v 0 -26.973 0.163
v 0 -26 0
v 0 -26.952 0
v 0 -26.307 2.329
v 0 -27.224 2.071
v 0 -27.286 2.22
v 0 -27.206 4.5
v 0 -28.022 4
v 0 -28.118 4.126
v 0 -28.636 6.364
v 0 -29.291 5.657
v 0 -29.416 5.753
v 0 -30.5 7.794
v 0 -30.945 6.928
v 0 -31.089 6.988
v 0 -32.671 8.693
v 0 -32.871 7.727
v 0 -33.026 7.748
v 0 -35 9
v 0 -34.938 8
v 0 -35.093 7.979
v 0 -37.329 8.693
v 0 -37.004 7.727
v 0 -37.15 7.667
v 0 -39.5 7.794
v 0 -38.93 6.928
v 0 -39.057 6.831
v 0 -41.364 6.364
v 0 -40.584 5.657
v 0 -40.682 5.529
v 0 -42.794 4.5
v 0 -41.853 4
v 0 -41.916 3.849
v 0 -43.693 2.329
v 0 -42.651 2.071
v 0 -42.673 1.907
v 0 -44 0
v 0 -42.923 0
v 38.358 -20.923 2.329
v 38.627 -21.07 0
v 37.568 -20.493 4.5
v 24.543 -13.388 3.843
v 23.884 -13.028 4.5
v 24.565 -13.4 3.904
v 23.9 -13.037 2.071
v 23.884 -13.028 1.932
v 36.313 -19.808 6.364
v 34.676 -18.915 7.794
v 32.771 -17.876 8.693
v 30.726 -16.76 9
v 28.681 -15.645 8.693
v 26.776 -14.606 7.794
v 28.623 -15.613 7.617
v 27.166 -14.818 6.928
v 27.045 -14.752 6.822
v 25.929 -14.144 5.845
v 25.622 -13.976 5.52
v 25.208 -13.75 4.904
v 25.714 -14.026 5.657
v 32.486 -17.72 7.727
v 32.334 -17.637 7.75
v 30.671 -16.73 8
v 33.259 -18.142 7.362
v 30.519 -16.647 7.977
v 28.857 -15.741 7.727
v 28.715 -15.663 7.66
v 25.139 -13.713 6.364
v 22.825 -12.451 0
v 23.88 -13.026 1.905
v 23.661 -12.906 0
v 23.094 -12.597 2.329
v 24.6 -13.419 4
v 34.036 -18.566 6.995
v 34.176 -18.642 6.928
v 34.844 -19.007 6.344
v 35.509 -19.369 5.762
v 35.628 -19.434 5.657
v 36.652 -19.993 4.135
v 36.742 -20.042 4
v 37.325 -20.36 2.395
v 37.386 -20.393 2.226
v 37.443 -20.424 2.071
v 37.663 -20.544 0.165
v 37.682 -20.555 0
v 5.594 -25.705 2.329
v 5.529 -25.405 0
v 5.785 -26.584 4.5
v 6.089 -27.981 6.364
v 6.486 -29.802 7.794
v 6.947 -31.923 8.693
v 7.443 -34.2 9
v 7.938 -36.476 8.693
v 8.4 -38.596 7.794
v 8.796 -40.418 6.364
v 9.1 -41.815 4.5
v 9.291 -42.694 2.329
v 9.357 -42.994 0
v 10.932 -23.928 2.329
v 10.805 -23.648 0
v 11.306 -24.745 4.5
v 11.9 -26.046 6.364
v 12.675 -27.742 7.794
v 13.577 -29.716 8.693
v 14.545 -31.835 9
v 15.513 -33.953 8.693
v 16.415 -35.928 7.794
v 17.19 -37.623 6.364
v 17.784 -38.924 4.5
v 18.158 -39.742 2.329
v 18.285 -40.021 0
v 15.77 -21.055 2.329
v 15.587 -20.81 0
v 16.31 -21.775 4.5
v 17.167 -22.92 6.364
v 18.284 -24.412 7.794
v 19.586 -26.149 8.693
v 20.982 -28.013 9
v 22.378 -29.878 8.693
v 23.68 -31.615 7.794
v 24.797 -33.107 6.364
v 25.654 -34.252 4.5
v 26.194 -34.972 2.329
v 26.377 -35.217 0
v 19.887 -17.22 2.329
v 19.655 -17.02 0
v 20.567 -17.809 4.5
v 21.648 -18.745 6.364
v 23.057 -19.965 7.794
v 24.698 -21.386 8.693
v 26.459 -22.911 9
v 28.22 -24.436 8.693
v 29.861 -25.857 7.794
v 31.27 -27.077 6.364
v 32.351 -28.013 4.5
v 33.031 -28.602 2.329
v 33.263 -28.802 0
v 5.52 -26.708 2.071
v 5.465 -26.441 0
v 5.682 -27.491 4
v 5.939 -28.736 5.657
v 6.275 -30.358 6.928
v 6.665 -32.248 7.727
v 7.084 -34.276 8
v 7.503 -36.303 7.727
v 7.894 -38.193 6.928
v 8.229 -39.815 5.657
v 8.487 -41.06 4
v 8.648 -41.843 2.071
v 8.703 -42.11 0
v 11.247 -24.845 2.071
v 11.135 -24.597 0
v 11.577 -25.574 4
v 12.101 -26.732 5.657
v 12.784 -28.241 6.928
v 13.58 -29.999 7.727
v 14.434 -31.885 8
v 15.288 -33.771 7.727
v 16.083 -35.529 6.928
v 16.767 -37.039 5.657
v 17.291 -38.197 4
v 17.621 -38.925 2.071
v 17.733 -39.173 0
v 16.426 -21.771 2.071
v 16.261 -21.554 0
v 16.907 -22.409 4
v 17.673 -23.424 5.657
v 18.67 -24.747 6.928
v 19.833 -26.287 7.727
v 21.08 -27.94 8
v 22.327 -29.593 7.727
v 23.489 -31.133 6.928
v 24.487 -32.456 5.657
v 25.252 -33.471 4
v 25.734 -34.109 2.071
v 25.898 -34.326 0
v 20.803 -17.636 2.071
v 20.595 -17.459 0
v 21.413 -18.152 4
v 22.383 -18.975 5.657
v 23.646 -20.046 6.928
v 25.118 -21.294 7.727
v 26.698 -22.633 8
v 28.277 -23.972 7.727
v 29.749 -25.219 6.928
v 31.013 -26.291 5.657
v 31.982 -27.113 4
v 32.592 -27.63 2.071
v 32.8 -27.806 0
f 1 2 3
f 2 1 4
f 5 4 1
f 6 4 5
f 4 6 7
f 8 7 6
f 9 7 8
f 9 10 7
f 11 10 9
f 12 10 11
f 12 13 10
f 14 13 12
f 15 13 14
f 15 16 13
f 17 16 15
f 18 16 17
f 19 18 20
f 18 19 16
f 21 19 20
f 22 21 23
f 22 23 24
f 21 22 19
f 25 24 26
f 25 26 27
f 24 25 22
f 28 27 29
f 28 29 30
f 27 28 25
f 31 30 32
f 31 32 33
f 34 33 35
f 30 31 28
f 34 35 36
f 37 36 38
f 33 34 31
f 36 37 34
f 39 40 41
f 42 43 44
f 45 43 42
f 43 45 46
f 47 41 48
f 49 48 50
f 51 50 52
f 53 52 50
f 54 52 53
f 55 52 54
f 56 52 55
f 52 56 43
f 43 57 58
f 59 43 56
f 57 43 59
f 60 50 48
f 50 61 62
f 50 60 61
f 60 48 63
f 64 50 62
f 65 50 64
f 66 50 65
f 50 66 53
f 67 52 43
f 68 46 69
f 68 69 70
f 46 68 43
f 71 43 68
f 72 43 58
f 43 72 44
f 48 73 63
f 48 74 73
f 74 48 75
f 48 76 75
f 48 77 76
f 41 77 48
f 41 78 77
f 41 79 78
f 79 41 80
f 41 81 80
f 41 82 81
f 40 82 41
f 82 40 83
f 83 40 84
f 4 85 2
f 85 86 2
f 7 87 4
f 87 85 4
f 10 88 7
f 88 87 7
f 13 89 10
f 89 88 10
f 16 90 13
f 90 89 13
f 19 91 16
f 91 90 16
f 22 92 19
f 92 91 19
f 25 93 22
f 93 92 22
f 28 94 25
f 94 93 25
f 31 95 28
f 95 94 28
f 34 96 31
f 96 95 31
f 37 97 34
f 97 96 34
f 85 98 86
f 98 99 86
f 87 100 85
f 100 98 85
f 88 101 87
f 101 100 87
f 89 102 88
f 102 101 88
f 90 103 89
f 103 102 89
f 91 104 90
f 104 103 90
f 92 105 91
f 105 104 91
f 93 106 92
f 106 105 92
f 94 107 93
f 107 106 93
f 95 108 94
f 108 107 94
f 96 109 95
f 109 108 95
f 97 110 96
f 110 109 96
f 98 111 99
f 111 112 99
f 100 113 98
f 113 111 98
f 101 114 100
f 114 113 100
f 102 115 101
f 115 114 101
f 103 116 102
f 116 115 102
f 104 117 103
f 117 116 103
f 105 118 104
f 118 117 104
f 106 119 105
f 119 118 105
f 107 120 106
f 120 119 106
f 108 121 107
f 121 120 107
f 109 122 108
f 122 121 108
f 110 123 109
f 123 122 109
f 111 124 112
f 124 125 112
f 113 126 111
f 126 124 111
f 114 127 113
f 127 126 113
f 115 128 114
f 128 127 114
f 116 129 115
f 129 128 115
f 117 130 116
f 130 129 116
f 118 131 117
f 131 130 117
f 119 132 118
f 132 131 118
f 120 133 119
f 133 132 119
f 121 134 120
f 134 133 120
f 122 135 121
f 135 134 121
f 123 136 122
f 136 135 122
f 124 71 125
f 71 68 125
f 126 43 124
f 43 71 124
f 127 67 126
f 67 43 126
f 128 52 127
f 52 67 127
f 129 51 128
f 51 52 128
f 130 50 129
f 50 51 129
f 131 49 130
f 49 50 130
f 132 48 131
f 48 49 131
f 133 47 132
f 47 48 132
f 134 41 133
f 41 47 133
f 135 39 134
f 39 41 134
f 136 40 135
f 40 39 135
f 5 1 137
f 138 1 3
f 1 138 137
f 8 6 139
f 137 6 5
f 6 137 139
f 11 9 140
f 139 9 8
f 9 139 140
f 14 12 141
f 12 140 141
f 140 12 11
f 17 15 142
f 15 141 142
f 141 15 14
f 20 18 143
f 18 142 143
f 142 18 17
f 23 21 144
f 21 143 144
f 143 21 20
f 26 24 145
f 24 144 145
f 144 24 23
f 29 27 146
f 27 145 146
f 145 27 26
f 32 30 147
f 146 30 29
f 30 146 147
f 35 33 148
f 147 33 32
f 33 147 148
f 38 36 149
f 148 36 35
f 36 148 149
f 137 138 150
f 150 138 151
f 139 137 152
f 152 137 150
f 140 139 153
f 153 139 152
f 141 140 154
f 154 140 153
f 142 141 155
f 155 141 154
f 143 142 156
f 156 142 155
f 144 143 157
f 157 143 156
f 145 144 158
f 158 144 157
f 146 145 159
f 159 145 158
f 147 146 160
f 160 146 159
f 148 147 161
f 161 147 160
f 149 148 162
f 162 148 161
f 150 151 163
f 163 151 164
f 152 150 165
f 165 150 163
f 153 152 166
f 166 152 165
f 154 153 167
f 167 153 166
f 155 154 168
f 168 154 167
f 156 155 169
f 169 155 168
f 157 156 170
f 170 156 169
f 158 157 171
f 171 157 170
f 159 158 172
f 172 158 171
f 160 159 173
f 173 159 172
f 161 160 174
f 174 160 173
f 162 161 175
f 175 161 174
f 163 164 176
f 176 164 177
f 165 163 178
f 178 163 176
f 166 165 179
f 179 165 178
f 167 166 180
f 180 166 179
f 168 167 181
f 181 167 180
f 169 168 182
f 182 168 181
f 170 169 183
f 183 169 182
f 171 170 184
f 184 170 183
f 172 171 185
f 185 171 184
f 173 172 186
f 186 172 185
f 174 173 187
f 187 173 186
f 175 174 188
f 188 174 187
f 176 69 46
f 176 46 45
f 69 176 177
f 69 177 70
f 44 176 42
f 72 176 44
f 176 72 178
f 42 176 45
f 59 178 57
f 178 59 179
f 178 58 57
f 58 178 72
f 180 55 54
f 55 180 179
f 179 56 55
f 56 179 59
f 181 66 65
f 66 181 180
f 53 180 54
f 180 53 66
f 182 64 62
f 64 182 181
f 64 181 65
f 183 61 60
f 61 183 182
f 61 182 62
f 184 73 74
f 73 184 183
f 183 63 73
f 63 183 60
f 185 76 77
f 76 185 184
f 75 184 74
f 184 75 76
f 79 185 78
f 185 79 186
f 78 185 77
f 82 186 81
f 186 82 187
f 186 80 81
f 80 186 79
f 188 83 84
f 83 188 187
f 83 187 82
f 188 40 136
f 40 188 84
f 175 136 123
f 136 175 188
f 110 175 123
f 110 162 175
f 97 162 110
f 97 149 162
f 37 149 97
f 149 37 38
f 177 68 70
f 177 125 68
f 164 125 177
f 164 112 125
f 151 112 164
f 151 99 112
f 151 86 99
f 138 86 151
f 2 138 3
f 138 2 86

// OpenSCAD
// file: ../build_environments.scad
// build_environments.scad: modules to build level sections
//

module pool(diameter=10.0, wall_height=2.0, step_width=3.0, connections=[])
{
    difference() {
        union() {
        difference() {
            cylinder(h=0.5,r1=diameter+step_width,r2=diameter+step_width,$fn=48);
            translate([0,0,-0.1])
                cylinder(h=0.7,r1=diameter,r2=diameter,$fn=48);
        }
        difference() {
            cylinder(h=wall_height,r1=diameter+step_width+1.0,r2=diameter+step_width+1.0,$fn=48);
            translate([0,0,-0.1])
                cylinder(h=wall_height+0.2,r1=diameter+step_width,r2=diameter+step_width,$fn=48);
        }
        }
    
        for (c = connections)
        {
            rotate([0,90,0]) {
                angle = atan2(c[1],c[0]);
                rotate([-angle,0,0]) {
                    cylinder(h=diameter+5.0,r1=c[2],r2=c[2],$fn=48);
                }
            }
        }
    }
}

module straight(length=10.0, width=2.0, dy1=0.0, dy2=0.0, dz=0.0)
{
    dims = [0, 0, 0, 0, 0, (dz/length)];
    matrix = [
        [ 1, dims[0], dims[1], 0 ],
        [ dims[2], 1, dims[4], 0 ],
        [ dims[5], dims[3], 1, 0 ],
        [ 0, 0, 0, 1 ]
    ];
    multmatrix(matrix)
    difference() {
        translate([dy1,0,0])
        union() {
            rotate([0,90,0]) {
                difference() {
                    cylinder(h=(length-dy1-dy2),r1=width+1.0,r2=width+1.0,$fn=24);
                    translate([0,0,-0.1])
                        cylinder(h=(length-dy1-dy2+0.2),r1=width,r2=width,$fn=24);
                }
                difference() {
                    cylinder(h=1.0,r1=width+2.0,r2=width+2.0,$fn=24);
                    translate([0,0,-0.1])
                        cylinder(h=1.2,r1=width,r2=width,$fn=24);
                }
                translate([0,0,(length-dy1-dy2)-1.0]) {
                    difference() {
                        cylinder(h=1.0,r1=width+2.0,r2=width+2.0,$fn=24);
                        translate([0,0,-0.1])
                            cylinder(h=1.2,r1=width,r2=width,$fn=24);
                    }
                }
            }
        }
        translate([0,0,-(2*width+4.0)/2])
            cube([3*length,3*length,2*width+4.0],center=true);
    }
}

module curve(p0=[0,0], center=[0,0], dir=1, angle=0.0, width=2.0)
{
    radius = sqrt((p0[0]-center[0])*(p0[0]-center[0]) + (p0[1]-center[1])*(p0[1]-center[1]));
    if (dir == 0) {
        difference() {
            rotate([0,0,-90])
            difference() {
                rotate_extrude(angle = angle, convexity = 10, $fn=32)
                    translate([radius, 0, 0])
                        circle(r = width+1.0,$fn=24);
                rotate([0,0,-1.0])
                    rotate_extrude(angle = angle+2.0, convexity = 10, $fn=32)
                        translate([radius, 0, 0])
                            circle(r = width,$fn=24);
            }
            translate([0,0,-(2*width+4.0)/2])
                cube([5*radius,5*radius,2*width+4.0],center=true);
        }
    }
    else {
        difference() {
            rotate([0,0,90])
            difference() {
                rotate_extrude(angle = -angle, convexity = 10, $fn=32)
                    translate([radius, 0, 0])
                        circle(r = width+1.0,$fn=24);
                rotate([0,0,1.0])
                    rotate_extrude(angle = -angle-2.0, convexity = 10, $fn=32)
                        translate([radius, 0, 0])
                            circle(r = width,$fn=24);
            }
            translate([0,0,-(2*width+4.0)/2])
                cube([5*radius,5*radius,2*width+4.0],center=true);
        }
    }

}

// test pool
//pool(diameter=12.0000, wall_height=3.0000, step_width=3.0000, connections=[[0.0000,-26.0000,2.0000], [23.6074,0.0000,2.0000]]);

// test straight, slope
//straight(length=26.0000, width=2.0000, dy1=11.8322, dy2=6.7082, dz=0.0000);
//straight(length=29.1549, width=12.0000, dy1=0.0000, dy2=0.0000, dz=-15.0000);

// test curve
//curve(p0=[23.6074, 0.0000], center=[23.6074, 5.0000], dir=0, angle=60.1011, width=2.0000);
//curve(p0=[33.6426, 12.4219], center=[37.9771, 9.9295], dir=1, angle=120.4627, width=2.0000);
// main file
use <../build_environments.scad>;
curve(p0=[221.3538, 365.7282], center=[216.7368, 331.0341], dir=0, angle=61.3885, width=8.0000);
